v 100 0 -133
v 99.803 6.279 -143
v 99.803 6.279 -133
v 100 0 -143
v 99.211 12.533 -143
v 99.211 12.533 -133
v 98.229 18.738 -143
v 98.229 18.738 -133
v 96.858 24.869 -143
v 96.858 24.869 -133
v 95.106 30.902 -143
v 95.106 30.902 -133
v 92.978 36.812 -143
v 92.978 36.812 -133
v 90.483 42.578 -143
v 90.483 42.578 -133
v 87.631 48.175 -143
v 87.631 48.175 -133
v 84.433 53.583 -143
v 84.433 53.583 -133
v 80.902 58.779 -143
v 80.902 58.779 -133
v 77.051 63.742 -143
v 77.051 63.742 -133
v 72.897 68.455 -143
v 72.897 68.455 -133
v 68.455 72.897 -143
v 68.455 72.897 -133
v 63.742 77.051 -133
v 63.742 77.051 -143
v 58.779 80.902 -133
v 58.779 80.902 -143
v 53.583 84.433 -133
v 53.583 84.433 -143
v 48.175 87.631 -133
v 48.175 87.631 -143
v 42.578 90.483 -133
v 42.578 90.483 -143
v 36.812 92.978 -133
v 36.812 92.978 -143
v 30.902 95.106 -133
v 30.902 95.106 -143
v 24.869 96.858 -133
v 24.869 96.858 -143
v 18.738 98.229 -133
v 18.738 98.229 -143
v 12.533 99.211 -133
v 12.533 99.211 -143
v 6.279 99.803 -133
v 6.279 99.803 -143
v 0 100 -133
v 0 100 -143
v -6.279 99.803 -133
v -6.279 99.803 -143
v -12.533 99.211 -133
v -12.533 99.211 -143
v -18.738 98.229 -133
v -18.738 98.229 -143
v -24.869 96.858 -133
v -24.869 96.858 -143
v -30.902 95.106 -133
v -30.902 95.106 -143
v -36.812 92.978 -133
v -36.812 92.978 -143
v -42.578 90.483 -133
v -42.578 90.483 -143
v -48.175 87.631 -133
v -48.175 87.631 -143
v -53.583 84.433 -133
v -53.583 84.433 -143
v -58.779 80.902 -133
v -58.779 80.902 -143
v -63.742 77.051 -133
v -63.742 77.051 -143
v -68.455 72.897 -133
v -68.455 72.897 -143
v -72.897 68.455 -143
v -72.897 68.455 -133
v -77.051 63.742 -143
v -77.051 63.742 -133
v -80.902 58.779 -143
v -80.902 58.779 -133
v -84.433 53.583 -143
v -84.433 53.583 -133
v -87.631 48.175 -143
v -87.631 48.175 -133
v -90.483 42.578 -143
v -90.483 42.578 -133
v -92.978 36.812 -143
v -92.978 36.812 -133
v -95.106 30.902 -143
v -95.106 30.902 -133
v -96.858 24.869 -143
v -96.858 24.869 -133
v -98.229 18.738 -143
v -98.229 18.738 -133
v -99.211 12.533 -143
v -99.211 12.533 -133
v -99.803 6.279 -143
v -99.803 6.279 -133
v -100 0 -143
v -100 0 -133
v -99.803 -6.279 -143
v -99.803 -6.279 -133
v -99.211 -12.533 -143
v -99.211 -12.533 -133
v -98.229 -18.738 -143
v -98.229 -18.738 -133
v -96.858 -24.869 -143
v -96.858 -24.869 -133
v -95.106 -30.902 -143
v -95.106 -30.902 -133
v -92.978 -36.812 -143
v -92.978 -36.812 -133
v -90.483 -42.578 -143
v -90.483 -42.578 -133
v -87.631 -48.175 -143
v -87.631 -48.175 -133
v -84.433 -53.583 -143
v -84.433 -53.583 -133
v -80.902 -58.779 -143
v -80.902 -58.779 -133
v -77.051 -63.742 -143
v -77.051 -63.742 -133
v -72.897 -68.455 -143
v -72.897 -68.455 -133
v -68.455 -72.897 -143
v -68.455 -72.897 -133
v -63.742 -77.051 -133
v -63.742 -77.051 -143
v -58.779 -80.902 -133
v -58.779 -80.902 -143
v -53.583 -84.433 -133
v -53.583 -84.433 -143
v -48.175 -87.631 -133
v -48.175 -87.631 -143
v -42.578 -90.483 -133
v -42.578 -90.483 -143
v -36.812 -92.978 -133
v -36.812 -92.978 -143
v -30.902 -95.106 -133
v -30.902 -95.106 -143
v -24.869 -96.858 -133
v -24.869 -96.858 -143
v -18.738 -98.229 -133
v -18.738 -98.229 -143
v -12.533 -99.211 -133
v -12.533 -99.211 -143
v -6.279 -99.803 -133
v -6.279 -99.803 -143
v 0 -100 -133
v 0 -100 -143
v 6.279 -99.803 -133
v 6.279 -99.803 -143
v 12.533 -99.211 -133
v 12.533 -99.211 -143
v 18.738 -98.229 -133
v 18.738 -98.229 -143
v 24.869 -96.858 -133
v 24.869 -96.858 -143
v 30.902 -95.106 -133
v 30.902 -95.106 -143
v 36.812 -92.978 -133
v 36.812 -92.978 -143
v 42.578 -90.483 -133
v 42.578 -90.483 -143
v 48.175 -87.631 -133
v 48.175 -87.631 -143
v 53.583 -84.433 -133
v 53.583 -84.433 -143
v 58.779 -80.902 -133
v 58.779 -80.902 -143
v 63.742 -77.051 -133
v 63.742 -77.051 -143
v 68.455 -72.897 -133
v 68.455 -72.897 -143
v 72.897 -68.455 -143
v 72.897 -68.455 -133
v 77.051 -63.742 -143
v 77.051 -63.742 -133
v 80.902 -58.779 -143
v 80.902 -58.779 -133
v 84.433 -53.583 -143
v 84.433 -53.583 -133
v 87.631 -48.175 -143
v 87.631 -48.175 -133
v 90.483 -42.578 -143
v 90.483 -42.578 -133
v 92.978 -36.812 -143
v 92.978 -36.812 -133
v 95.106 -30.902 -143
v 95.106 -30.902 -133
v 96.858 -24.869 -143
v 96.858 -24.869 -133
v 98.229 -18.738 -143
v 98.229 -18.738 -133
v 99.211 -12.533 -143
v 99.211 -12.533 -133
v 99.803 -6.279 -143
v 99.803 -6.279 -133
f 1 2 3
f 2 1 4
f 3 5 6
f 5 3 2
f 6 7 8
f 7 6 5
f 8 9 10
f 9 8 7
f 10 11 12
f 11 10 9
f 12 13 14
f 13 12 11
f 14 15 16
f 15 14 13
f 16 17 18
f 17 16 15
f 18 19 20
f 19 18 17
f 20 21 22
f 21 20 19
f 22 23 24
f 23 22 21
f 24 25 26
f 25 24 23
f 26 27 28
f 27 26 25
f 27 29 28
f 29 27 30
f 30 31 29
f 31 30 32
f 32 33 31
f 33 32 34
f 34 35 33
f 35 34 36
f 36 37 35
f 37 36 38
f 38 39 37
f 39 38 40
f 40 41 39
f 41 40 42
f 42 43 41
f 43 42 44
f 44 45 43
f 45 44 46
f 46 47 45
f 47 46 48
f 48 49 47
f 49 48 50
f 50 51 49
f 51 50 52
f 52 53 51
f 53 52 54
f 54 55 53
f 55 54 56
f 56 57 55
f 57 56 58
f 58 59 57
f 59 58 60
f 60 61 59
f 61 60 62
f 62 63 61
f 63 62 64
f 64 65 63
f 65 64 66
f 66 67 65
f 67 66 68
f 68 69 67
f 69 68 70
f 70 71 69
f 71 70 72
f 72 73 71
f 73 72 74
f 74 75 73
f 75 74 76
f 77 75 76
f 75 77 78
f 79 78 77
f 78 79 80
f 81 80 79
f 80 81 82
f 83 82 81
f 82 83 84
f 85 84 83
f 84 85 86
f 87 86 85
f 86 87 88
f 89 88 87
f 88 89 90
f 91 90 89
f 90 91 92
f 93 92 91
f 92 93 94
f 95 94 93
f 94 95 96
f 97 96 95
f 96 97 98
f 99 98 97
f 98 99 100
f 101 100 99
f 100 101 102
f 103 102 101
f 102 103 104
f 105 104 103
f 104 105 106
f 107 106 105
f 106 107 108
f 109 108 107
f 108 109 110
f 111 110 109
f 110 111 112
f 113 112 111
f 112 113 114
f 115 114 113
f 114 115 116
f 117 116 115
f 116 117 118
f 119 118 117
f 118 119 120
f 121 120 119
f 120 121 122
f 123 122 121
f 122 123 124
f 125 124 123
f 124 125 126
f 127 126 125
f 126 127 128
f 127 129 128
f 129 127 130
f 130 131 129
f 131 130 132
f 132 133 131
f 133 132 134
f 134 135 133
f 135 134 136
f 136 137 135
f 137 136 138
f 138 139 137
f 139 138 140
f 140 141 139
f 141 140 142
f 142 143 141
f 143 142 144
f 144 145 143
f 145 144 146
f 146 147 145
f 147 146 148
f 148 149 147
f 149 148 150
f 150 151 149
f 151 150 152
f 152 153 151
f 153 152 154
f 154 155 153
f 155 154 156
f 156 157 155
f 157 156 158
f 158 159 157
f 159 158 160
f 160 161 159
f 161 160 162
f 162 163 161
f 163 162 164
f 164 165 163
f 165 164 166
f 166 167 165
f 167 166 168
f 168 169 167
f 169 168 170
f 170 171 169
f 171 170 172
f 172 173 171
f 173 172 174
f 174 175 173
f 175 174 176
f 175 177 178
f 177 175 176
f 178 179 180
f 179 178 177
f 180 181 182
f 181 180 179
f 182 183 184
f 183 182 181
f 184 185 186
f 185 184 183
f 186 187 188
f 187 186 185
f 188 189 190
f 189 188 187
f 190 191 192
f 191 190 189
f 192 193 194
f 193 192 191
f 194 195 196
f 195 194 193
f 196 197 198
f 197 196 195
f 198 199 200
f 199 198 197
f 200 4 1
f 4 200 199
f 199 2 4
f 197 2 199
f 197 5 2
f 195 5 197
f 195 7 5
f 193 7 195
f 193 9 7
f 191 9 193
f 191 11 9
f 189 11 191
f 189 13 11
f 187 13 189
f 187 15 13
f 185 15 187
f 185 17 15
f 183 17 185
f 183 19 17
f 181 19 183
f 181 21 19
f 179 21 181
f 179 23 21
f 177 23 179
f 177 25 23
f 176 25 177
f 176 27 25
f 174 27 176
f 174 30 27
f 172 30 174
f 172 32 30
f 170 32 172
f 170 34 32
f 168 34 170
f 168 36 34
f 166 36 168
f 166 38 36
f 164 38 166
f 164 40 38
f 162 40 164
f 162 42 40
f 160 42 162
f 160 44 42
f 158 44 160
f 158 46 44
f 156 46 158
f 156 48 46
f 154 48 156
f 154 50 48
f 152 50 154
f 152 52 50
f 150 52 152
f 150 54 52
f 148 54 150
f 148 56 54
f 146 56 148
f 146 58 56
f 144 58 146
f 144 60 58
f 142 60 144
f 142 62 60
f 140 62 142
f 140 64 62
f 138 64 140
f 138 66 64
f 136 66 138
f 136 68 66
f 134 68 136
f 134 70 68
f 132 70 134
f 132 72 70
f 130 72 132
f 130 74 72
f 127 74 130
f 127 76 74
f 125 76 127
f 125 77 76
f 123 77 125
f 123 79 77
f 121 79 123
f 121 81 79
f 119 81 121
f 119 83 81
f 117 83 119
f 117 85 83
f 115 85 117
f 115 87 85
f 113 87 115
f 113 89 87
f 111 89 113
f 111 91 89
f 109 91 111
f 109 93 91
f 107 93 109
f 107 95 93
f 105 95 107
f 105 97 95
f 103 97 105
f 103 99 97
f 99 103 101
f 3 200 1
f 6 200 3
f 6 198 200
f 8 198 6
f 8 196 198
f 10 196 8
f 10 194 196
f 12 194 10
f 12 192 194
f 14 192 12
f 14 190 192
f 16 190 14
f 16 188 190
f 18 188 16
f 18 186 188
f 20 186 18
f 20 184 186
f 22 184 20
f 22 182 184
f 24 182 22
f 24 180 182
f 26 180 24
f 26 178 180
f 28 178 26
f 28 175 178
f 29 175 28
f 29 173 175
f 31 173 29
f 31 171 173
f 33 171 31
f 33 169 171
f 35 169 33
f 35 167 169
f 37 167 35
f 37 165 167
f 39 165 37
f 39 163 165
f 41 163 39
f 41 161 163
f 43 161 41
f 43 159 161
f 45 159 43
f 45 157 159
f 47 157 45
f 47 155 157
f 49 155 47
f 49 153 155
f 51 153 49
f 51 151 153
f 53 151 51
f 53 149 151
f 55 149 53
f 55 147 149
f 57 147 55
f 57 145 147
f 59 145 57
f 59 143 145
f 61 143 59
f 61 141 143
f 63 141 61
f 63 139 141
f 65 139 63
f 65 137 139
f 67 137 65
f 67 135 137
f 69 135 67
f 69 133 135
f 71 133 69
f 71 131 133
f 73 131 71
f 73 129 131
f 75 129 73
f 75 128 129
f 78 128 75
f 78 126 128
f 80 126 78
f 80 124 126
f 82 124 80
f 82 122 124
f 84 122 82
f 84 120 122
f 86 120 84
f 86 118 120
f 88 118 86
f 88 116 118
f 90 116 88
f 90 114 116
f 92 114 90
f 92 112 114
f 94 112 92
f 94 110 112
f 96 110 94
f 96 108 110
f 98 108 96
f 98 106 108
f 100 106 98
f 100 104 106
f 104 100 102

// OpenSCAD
 $fn = 100;
 
 difference(){
 translate([0,0,-143])
 cylinder(h = 10, r = 100);
 
 }
 
 
// import("lorenzBIG.stl"); 
